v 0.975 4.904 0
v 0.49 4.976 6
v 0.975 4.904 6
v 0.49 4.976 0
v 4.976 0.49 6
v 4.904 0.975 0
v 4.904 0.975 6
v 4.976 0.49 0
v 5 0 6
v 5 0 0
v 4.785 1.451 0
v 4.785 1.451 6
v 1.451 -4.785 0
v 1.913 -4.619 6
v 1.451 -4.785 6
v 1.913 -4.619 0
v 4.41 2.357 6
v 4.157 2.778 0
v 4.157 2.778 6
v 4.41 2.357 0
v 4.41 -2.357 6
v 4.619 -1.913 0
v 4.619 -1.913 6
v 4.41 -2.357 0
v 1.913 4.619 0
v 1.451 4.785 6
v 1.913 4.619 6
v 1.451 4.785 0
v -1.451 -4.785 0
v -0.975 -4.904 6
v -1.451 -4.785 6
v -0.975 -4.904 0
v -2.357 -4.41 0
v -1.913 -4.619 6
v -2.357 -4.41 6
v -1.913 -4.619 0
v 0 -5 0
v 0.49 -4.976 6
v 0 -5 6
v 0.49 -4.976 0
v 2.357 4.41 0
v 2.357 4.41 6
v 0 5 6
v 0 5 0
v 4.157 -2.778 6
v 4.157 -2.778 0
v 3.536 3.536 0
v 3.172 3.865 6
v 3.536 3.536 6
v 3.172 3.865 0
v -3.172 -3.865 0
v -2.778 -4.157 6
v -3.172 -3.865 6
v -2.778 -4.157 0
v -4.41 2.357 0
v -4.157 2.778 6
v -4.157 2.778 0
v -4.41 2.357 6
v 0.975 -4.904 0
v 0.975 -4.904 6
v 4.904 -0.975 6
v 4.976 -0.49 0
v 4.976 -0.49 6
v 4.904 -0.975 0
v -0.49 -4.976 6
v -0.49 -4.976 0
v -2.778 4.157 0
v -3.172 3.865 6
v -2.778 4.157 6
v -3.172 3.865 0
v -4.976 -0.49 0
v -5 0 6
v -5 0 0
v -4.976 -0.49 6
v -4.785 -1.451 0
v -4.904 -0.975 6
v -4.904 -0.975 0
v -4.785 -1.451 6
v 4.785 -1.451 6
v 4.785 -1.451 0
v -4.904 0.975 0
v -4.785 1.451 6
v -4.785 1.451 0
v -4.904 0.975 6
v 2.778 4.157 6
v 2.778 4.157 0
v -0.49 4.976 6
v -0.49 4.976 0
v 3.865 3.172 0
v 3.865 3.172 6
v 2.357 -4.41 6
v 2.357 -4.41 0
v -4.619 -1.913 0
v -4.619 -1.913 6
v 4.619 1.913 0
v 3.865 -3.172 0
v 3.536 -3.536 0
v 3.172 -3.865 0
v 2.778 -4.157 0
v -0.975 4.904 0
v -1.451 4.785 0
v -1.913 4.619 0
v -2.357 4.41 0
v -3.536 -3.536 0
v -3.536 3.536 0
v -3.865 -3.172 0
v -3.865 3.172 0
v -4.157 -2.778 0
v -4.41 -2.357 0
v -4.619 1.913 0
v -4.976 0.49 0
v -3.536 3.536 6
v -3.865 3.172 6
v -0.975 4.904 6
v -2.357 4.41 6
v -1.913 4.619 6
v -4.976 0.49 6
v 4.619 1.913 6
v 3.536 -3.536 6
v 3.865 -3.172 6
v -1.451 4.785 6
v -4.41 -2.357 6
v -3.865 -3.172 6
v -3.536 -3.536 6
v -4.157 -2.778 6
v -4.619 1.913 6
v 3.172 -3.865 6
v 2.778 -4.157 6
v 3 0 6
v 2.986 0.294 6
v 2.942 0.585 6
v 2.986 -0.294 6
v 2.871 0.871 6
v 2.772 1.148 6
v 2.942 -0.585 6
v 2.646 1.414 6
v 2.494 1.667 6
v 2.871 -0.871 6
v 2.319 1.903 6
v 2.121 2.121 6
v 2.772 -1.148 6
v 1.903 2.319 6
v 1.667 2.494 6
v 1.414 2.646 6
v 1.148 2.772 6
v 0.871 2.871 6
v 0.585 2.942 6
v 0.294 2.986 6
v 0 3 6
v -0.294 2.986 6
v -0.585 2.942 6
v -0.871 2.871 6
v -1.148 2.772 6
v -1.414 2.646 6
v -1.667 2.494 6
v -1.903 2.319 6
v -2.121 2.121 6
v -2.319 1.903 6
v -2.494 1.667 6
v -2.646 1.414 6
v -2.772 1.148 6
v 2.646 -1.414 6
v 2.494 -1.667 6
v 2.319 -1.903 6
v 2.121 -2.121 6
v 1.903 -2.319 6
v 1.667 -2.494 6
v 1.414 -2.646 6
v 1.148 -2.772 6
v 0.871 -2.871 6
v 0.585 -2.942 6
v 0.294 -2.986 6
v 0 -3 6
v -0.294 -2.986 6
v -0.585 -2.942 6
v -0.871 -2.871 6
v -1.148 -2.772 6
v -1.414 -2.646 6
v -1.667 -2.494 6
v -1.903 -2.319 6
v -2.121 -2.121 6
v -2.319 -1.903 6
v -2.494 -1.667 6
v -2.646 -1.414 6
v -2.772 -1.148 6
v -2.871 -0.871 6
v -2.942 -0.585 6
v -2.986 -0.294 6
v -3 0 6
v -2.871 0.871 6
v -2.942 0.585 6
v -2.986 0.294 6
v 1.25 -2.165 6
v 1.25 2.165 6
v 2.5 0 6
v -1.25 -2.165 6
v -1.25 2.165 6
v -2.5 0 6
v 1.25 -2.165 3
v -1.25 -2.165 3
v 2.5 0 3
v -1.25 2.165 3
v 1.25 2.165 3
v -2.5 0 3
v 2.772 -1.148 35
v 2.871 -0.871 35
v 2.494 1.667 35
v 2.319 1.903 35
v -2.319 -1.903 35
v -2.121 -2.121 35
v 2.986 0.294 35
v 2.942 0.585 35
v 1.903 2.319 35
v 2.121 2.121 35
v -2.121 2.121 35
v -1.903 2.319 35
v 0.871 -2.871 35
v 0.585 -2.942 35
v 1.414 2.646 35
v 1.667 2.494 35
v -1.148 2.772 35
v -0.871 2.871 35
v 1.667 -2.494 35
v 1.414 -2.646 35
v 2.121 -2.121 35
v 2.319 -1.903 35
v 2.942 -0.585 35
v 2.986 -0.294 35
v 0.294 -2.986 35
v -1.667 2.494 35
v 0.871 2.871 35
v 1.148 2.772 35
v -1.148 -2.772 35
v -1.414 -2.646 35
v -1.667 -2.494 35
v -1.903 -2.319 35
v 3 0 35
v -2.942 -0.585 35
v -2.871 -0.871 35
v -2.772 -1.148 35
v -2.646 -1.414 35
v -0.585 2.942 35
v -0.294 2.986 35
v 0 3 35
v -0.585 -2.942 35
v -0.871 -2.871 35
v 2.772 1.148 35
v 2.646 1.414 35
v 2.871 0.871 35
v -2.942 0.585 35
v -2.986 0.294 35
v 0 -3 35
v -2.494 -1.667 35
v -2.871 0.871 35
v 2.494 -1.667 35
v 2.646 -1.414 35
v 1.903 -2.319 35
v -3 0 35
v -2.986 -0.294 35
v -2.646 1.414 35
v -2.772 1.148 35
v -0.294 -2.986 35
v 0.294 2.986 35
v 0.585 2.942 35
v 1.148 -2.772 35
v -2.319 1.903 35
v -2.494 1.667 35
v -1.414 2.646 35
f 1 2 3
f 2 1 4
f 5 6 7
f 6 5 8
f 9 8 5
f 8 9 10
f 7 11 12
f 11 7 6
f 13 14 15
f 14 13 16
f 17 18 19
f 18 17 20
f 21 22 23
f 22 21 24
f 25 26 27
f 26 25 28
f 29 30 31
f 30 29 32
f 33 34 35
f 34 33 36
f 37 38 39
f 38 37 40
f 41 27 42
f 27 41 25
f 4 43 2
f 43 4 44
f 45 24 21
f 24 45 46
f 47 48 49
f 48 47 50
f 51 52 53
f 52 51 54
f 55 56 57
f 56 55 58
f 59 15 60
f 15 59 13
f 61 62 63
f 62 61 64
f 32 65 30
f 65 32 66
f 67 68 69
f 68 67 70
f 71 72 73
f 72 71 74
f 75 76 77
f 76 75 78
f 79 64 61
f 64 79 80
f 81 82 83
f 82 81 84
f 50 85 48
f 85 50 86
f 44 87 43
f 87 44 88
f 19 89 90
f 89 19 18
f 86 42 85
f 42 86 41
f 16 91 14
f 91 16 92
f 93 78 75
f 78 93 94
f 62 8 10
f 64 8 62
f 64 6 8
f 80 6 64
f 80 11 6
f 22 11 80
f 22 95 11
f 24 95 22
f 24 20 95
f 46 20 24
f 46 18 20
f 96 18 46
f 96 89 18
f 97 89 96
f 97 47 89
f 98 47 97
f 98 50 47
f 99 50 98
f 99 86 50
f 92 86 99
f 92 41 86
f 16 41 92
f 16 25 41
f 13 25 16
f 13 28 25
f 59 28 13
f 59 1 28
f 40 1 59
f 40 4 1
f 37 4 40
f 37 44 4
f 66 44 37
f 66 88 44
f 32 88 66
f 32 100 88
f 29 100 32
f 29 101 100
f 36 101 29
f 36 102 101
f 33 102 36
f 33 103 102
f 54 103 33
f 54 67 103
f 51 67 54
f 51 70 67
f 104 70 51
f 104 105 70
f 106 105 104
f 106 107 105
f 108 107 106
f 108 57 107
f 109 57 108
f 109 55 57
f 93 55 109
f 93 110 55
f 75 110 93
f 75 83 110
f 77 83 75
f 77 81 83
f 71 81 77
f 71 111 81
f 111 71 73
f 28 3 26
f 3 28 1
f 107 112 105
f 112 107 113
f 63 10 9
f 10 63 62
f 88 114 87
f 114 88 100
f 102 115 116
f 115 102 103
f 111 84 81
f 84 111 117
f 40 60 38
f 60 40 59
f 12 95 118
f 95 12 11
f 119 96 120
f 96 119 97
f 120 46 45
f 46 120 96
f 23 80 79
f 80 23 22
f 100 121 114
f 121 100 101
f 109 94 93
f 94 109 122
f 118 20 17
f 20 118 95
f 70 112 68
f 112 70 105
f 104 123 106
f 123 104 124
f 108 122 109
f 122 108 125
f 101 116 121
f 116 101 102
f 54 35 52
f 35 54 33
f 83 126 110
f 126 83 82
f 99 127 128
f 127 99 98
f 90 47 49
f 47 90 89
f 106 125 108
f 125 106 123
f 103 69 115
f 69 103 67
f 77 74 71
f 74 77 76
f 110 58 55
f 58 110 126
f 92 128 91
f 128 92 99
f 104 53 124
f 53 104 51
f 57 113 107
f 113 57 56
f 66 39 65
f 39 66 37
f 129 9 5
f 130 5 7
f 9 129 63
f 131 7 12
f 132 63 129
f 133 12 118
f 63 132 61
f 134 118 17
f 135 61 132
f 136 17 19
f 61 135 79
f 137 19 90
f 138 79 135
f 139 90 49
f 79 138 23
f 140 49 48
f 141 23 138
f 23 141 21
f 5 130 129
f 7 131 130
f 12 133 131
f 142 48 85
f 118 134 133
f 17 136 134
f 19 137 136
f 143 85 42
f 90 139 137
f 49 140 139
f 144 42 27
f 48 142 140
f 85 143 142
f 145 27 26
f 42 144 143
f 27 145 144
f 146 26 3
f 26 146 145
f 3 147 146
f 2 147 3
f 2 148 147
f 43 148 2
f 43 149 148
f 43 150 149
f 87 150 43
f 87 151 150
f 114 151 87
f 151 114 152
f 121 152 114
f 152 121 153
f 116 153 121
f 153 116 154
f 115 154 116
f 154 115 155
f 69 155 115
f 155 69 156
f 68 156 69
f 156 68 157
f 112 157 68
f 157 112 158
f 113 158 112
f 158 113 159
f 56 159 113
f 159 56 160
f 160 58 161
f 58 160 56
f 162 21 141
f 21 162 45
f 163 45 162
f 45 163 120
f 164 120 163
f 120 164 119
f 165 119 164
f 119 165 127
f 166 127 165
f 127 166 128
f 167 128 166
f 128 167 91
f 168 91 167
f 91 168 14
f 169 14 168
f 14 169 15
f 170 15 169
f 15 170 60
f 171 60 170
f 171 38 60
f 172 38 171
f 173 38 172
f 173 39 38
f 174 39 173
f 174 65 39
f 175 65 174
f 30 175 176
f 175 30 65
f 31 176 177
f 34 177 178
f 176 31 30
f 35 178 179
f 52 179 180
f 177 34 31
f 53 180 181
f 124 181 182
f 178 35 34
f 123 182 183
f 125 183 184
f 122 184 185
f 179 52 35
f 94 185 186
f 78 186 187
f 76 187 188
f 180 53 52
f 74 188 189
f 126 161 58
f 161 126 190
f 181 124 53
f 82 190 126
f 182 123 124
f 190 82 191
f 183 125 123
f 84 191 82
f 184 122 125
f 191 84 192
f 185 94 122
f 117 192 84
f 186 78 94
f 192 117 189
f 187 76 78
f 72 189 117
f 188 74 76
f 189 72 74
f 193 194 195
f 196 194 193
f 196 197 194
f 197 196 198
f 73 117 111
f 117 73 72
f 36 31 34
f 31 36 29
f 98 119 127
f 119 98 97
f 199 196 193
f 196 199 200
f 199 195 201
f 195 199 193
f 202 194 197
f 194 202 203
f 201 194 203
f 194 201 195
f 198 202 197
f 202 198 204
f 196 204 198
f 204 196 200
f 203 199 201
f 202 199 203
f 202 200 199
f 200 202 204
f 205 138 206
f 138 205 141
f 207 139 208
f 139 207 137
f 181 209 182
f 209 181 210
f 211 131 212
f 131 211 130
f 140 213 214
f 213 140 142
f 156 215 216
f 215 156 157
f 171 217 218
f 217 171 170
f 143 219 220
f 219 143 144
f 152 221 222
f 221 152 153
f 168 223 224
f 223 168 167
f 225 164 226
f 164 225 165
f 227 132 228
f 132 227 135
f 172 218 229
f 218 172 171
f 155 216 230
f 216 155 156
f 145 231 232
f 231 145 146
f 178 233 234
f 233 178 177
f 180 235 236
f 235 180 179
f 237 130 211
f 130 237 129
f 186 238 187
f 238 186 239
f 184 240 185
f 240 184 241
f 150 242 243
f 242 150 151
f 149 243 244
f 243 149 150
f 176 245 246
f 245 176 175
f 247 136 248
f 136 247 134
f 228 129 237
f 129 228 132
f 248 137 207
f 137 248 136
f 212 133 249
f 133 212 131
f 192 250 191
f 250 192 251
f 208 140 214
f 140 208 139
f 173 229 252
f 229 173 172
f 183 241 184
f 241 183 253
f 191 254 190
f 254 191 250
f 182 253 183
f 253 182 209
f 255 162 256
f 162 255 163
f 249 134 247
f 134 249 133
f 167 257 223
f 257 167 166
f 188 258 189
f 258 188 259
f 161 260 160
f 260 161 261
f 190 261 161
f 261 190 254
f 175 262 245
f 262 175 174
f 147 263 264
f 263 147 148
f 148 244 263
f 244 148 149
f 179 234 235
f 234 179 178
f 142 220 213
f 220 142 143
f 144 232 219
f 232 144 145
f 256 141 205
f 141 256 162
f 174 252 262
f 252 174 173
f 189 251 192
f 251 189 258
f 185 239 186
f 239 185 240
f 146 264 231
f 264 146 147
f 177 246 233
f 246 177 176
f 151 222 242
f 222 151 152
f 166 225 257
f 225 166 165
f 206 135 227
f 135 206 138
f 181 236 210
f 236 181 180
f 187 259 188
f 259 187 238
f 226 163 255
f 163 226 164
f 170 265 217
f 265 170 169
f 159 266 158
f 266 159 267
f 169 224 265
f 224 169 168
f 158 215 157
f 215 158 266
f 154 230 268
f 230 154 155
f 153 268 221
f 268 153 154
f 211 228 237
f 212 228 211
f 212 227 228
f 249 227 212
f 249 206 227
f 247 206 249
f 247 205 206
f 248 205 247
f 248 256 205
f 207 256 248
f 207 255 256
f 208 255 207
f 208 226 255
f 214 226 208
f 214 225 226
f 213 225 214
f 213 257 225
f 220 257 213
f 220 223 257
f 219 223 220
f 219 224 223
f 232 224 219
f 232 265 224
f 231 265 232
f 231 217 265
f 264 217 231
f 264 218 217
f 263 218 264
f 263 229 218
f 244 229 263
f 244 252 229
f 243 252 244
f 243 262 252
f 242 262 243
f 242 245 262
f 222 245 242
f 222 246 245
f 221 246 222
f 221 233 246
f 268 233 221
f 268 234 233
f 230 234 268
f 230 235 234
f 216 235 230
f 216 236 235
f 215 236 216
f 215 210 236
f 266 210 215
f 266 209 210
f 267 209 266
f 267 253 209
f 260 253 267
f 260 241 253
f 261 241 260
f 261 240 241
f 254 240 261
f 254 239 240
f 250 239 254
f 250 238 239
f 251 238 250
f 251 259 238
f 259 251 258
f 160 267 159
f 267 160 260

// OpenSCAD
// Parameters
bolt_length = 40;
bolt_radius = 3;
head_height = 6;
head_radius = 5;
hex_radius = 2.5;
hex_depth = 3;
tip_length = 5;

// Bolt shaft
module bolt_shaft() {
    cylinder(h = bolt_length - head_height - tip_length, r = bolt_radius, $fn = 64);
}

// Bolt head with hex socket
module bolt_head() {
    difference() {
        cylinder(h = head_height, r = head_radius, $fn = 64);
        translate([0, 0, head_height - hex_depth])
            rotate([0, 0, 0])
                cylinder(h = hex_depth + 0.1, r = hex_radius, $fn = 6);
    }
}

// Conical tip
module bolt_tip() {
    translate([0, 0, -(tip_length)])
        cylinder(h = tip_length, r1 = bolt_radius, r2 = 0, $fn = 64);
}

// Full bolt
module bolt() {
    union() {
        bolt_head();
        translate([0, 0, head_height])
            bolt_shaft();
        translate([0, 0, head_height + bolt_length - head_height - tip_length])
            bolt_tip();
    }
}

// Render the bolt
bolt();
